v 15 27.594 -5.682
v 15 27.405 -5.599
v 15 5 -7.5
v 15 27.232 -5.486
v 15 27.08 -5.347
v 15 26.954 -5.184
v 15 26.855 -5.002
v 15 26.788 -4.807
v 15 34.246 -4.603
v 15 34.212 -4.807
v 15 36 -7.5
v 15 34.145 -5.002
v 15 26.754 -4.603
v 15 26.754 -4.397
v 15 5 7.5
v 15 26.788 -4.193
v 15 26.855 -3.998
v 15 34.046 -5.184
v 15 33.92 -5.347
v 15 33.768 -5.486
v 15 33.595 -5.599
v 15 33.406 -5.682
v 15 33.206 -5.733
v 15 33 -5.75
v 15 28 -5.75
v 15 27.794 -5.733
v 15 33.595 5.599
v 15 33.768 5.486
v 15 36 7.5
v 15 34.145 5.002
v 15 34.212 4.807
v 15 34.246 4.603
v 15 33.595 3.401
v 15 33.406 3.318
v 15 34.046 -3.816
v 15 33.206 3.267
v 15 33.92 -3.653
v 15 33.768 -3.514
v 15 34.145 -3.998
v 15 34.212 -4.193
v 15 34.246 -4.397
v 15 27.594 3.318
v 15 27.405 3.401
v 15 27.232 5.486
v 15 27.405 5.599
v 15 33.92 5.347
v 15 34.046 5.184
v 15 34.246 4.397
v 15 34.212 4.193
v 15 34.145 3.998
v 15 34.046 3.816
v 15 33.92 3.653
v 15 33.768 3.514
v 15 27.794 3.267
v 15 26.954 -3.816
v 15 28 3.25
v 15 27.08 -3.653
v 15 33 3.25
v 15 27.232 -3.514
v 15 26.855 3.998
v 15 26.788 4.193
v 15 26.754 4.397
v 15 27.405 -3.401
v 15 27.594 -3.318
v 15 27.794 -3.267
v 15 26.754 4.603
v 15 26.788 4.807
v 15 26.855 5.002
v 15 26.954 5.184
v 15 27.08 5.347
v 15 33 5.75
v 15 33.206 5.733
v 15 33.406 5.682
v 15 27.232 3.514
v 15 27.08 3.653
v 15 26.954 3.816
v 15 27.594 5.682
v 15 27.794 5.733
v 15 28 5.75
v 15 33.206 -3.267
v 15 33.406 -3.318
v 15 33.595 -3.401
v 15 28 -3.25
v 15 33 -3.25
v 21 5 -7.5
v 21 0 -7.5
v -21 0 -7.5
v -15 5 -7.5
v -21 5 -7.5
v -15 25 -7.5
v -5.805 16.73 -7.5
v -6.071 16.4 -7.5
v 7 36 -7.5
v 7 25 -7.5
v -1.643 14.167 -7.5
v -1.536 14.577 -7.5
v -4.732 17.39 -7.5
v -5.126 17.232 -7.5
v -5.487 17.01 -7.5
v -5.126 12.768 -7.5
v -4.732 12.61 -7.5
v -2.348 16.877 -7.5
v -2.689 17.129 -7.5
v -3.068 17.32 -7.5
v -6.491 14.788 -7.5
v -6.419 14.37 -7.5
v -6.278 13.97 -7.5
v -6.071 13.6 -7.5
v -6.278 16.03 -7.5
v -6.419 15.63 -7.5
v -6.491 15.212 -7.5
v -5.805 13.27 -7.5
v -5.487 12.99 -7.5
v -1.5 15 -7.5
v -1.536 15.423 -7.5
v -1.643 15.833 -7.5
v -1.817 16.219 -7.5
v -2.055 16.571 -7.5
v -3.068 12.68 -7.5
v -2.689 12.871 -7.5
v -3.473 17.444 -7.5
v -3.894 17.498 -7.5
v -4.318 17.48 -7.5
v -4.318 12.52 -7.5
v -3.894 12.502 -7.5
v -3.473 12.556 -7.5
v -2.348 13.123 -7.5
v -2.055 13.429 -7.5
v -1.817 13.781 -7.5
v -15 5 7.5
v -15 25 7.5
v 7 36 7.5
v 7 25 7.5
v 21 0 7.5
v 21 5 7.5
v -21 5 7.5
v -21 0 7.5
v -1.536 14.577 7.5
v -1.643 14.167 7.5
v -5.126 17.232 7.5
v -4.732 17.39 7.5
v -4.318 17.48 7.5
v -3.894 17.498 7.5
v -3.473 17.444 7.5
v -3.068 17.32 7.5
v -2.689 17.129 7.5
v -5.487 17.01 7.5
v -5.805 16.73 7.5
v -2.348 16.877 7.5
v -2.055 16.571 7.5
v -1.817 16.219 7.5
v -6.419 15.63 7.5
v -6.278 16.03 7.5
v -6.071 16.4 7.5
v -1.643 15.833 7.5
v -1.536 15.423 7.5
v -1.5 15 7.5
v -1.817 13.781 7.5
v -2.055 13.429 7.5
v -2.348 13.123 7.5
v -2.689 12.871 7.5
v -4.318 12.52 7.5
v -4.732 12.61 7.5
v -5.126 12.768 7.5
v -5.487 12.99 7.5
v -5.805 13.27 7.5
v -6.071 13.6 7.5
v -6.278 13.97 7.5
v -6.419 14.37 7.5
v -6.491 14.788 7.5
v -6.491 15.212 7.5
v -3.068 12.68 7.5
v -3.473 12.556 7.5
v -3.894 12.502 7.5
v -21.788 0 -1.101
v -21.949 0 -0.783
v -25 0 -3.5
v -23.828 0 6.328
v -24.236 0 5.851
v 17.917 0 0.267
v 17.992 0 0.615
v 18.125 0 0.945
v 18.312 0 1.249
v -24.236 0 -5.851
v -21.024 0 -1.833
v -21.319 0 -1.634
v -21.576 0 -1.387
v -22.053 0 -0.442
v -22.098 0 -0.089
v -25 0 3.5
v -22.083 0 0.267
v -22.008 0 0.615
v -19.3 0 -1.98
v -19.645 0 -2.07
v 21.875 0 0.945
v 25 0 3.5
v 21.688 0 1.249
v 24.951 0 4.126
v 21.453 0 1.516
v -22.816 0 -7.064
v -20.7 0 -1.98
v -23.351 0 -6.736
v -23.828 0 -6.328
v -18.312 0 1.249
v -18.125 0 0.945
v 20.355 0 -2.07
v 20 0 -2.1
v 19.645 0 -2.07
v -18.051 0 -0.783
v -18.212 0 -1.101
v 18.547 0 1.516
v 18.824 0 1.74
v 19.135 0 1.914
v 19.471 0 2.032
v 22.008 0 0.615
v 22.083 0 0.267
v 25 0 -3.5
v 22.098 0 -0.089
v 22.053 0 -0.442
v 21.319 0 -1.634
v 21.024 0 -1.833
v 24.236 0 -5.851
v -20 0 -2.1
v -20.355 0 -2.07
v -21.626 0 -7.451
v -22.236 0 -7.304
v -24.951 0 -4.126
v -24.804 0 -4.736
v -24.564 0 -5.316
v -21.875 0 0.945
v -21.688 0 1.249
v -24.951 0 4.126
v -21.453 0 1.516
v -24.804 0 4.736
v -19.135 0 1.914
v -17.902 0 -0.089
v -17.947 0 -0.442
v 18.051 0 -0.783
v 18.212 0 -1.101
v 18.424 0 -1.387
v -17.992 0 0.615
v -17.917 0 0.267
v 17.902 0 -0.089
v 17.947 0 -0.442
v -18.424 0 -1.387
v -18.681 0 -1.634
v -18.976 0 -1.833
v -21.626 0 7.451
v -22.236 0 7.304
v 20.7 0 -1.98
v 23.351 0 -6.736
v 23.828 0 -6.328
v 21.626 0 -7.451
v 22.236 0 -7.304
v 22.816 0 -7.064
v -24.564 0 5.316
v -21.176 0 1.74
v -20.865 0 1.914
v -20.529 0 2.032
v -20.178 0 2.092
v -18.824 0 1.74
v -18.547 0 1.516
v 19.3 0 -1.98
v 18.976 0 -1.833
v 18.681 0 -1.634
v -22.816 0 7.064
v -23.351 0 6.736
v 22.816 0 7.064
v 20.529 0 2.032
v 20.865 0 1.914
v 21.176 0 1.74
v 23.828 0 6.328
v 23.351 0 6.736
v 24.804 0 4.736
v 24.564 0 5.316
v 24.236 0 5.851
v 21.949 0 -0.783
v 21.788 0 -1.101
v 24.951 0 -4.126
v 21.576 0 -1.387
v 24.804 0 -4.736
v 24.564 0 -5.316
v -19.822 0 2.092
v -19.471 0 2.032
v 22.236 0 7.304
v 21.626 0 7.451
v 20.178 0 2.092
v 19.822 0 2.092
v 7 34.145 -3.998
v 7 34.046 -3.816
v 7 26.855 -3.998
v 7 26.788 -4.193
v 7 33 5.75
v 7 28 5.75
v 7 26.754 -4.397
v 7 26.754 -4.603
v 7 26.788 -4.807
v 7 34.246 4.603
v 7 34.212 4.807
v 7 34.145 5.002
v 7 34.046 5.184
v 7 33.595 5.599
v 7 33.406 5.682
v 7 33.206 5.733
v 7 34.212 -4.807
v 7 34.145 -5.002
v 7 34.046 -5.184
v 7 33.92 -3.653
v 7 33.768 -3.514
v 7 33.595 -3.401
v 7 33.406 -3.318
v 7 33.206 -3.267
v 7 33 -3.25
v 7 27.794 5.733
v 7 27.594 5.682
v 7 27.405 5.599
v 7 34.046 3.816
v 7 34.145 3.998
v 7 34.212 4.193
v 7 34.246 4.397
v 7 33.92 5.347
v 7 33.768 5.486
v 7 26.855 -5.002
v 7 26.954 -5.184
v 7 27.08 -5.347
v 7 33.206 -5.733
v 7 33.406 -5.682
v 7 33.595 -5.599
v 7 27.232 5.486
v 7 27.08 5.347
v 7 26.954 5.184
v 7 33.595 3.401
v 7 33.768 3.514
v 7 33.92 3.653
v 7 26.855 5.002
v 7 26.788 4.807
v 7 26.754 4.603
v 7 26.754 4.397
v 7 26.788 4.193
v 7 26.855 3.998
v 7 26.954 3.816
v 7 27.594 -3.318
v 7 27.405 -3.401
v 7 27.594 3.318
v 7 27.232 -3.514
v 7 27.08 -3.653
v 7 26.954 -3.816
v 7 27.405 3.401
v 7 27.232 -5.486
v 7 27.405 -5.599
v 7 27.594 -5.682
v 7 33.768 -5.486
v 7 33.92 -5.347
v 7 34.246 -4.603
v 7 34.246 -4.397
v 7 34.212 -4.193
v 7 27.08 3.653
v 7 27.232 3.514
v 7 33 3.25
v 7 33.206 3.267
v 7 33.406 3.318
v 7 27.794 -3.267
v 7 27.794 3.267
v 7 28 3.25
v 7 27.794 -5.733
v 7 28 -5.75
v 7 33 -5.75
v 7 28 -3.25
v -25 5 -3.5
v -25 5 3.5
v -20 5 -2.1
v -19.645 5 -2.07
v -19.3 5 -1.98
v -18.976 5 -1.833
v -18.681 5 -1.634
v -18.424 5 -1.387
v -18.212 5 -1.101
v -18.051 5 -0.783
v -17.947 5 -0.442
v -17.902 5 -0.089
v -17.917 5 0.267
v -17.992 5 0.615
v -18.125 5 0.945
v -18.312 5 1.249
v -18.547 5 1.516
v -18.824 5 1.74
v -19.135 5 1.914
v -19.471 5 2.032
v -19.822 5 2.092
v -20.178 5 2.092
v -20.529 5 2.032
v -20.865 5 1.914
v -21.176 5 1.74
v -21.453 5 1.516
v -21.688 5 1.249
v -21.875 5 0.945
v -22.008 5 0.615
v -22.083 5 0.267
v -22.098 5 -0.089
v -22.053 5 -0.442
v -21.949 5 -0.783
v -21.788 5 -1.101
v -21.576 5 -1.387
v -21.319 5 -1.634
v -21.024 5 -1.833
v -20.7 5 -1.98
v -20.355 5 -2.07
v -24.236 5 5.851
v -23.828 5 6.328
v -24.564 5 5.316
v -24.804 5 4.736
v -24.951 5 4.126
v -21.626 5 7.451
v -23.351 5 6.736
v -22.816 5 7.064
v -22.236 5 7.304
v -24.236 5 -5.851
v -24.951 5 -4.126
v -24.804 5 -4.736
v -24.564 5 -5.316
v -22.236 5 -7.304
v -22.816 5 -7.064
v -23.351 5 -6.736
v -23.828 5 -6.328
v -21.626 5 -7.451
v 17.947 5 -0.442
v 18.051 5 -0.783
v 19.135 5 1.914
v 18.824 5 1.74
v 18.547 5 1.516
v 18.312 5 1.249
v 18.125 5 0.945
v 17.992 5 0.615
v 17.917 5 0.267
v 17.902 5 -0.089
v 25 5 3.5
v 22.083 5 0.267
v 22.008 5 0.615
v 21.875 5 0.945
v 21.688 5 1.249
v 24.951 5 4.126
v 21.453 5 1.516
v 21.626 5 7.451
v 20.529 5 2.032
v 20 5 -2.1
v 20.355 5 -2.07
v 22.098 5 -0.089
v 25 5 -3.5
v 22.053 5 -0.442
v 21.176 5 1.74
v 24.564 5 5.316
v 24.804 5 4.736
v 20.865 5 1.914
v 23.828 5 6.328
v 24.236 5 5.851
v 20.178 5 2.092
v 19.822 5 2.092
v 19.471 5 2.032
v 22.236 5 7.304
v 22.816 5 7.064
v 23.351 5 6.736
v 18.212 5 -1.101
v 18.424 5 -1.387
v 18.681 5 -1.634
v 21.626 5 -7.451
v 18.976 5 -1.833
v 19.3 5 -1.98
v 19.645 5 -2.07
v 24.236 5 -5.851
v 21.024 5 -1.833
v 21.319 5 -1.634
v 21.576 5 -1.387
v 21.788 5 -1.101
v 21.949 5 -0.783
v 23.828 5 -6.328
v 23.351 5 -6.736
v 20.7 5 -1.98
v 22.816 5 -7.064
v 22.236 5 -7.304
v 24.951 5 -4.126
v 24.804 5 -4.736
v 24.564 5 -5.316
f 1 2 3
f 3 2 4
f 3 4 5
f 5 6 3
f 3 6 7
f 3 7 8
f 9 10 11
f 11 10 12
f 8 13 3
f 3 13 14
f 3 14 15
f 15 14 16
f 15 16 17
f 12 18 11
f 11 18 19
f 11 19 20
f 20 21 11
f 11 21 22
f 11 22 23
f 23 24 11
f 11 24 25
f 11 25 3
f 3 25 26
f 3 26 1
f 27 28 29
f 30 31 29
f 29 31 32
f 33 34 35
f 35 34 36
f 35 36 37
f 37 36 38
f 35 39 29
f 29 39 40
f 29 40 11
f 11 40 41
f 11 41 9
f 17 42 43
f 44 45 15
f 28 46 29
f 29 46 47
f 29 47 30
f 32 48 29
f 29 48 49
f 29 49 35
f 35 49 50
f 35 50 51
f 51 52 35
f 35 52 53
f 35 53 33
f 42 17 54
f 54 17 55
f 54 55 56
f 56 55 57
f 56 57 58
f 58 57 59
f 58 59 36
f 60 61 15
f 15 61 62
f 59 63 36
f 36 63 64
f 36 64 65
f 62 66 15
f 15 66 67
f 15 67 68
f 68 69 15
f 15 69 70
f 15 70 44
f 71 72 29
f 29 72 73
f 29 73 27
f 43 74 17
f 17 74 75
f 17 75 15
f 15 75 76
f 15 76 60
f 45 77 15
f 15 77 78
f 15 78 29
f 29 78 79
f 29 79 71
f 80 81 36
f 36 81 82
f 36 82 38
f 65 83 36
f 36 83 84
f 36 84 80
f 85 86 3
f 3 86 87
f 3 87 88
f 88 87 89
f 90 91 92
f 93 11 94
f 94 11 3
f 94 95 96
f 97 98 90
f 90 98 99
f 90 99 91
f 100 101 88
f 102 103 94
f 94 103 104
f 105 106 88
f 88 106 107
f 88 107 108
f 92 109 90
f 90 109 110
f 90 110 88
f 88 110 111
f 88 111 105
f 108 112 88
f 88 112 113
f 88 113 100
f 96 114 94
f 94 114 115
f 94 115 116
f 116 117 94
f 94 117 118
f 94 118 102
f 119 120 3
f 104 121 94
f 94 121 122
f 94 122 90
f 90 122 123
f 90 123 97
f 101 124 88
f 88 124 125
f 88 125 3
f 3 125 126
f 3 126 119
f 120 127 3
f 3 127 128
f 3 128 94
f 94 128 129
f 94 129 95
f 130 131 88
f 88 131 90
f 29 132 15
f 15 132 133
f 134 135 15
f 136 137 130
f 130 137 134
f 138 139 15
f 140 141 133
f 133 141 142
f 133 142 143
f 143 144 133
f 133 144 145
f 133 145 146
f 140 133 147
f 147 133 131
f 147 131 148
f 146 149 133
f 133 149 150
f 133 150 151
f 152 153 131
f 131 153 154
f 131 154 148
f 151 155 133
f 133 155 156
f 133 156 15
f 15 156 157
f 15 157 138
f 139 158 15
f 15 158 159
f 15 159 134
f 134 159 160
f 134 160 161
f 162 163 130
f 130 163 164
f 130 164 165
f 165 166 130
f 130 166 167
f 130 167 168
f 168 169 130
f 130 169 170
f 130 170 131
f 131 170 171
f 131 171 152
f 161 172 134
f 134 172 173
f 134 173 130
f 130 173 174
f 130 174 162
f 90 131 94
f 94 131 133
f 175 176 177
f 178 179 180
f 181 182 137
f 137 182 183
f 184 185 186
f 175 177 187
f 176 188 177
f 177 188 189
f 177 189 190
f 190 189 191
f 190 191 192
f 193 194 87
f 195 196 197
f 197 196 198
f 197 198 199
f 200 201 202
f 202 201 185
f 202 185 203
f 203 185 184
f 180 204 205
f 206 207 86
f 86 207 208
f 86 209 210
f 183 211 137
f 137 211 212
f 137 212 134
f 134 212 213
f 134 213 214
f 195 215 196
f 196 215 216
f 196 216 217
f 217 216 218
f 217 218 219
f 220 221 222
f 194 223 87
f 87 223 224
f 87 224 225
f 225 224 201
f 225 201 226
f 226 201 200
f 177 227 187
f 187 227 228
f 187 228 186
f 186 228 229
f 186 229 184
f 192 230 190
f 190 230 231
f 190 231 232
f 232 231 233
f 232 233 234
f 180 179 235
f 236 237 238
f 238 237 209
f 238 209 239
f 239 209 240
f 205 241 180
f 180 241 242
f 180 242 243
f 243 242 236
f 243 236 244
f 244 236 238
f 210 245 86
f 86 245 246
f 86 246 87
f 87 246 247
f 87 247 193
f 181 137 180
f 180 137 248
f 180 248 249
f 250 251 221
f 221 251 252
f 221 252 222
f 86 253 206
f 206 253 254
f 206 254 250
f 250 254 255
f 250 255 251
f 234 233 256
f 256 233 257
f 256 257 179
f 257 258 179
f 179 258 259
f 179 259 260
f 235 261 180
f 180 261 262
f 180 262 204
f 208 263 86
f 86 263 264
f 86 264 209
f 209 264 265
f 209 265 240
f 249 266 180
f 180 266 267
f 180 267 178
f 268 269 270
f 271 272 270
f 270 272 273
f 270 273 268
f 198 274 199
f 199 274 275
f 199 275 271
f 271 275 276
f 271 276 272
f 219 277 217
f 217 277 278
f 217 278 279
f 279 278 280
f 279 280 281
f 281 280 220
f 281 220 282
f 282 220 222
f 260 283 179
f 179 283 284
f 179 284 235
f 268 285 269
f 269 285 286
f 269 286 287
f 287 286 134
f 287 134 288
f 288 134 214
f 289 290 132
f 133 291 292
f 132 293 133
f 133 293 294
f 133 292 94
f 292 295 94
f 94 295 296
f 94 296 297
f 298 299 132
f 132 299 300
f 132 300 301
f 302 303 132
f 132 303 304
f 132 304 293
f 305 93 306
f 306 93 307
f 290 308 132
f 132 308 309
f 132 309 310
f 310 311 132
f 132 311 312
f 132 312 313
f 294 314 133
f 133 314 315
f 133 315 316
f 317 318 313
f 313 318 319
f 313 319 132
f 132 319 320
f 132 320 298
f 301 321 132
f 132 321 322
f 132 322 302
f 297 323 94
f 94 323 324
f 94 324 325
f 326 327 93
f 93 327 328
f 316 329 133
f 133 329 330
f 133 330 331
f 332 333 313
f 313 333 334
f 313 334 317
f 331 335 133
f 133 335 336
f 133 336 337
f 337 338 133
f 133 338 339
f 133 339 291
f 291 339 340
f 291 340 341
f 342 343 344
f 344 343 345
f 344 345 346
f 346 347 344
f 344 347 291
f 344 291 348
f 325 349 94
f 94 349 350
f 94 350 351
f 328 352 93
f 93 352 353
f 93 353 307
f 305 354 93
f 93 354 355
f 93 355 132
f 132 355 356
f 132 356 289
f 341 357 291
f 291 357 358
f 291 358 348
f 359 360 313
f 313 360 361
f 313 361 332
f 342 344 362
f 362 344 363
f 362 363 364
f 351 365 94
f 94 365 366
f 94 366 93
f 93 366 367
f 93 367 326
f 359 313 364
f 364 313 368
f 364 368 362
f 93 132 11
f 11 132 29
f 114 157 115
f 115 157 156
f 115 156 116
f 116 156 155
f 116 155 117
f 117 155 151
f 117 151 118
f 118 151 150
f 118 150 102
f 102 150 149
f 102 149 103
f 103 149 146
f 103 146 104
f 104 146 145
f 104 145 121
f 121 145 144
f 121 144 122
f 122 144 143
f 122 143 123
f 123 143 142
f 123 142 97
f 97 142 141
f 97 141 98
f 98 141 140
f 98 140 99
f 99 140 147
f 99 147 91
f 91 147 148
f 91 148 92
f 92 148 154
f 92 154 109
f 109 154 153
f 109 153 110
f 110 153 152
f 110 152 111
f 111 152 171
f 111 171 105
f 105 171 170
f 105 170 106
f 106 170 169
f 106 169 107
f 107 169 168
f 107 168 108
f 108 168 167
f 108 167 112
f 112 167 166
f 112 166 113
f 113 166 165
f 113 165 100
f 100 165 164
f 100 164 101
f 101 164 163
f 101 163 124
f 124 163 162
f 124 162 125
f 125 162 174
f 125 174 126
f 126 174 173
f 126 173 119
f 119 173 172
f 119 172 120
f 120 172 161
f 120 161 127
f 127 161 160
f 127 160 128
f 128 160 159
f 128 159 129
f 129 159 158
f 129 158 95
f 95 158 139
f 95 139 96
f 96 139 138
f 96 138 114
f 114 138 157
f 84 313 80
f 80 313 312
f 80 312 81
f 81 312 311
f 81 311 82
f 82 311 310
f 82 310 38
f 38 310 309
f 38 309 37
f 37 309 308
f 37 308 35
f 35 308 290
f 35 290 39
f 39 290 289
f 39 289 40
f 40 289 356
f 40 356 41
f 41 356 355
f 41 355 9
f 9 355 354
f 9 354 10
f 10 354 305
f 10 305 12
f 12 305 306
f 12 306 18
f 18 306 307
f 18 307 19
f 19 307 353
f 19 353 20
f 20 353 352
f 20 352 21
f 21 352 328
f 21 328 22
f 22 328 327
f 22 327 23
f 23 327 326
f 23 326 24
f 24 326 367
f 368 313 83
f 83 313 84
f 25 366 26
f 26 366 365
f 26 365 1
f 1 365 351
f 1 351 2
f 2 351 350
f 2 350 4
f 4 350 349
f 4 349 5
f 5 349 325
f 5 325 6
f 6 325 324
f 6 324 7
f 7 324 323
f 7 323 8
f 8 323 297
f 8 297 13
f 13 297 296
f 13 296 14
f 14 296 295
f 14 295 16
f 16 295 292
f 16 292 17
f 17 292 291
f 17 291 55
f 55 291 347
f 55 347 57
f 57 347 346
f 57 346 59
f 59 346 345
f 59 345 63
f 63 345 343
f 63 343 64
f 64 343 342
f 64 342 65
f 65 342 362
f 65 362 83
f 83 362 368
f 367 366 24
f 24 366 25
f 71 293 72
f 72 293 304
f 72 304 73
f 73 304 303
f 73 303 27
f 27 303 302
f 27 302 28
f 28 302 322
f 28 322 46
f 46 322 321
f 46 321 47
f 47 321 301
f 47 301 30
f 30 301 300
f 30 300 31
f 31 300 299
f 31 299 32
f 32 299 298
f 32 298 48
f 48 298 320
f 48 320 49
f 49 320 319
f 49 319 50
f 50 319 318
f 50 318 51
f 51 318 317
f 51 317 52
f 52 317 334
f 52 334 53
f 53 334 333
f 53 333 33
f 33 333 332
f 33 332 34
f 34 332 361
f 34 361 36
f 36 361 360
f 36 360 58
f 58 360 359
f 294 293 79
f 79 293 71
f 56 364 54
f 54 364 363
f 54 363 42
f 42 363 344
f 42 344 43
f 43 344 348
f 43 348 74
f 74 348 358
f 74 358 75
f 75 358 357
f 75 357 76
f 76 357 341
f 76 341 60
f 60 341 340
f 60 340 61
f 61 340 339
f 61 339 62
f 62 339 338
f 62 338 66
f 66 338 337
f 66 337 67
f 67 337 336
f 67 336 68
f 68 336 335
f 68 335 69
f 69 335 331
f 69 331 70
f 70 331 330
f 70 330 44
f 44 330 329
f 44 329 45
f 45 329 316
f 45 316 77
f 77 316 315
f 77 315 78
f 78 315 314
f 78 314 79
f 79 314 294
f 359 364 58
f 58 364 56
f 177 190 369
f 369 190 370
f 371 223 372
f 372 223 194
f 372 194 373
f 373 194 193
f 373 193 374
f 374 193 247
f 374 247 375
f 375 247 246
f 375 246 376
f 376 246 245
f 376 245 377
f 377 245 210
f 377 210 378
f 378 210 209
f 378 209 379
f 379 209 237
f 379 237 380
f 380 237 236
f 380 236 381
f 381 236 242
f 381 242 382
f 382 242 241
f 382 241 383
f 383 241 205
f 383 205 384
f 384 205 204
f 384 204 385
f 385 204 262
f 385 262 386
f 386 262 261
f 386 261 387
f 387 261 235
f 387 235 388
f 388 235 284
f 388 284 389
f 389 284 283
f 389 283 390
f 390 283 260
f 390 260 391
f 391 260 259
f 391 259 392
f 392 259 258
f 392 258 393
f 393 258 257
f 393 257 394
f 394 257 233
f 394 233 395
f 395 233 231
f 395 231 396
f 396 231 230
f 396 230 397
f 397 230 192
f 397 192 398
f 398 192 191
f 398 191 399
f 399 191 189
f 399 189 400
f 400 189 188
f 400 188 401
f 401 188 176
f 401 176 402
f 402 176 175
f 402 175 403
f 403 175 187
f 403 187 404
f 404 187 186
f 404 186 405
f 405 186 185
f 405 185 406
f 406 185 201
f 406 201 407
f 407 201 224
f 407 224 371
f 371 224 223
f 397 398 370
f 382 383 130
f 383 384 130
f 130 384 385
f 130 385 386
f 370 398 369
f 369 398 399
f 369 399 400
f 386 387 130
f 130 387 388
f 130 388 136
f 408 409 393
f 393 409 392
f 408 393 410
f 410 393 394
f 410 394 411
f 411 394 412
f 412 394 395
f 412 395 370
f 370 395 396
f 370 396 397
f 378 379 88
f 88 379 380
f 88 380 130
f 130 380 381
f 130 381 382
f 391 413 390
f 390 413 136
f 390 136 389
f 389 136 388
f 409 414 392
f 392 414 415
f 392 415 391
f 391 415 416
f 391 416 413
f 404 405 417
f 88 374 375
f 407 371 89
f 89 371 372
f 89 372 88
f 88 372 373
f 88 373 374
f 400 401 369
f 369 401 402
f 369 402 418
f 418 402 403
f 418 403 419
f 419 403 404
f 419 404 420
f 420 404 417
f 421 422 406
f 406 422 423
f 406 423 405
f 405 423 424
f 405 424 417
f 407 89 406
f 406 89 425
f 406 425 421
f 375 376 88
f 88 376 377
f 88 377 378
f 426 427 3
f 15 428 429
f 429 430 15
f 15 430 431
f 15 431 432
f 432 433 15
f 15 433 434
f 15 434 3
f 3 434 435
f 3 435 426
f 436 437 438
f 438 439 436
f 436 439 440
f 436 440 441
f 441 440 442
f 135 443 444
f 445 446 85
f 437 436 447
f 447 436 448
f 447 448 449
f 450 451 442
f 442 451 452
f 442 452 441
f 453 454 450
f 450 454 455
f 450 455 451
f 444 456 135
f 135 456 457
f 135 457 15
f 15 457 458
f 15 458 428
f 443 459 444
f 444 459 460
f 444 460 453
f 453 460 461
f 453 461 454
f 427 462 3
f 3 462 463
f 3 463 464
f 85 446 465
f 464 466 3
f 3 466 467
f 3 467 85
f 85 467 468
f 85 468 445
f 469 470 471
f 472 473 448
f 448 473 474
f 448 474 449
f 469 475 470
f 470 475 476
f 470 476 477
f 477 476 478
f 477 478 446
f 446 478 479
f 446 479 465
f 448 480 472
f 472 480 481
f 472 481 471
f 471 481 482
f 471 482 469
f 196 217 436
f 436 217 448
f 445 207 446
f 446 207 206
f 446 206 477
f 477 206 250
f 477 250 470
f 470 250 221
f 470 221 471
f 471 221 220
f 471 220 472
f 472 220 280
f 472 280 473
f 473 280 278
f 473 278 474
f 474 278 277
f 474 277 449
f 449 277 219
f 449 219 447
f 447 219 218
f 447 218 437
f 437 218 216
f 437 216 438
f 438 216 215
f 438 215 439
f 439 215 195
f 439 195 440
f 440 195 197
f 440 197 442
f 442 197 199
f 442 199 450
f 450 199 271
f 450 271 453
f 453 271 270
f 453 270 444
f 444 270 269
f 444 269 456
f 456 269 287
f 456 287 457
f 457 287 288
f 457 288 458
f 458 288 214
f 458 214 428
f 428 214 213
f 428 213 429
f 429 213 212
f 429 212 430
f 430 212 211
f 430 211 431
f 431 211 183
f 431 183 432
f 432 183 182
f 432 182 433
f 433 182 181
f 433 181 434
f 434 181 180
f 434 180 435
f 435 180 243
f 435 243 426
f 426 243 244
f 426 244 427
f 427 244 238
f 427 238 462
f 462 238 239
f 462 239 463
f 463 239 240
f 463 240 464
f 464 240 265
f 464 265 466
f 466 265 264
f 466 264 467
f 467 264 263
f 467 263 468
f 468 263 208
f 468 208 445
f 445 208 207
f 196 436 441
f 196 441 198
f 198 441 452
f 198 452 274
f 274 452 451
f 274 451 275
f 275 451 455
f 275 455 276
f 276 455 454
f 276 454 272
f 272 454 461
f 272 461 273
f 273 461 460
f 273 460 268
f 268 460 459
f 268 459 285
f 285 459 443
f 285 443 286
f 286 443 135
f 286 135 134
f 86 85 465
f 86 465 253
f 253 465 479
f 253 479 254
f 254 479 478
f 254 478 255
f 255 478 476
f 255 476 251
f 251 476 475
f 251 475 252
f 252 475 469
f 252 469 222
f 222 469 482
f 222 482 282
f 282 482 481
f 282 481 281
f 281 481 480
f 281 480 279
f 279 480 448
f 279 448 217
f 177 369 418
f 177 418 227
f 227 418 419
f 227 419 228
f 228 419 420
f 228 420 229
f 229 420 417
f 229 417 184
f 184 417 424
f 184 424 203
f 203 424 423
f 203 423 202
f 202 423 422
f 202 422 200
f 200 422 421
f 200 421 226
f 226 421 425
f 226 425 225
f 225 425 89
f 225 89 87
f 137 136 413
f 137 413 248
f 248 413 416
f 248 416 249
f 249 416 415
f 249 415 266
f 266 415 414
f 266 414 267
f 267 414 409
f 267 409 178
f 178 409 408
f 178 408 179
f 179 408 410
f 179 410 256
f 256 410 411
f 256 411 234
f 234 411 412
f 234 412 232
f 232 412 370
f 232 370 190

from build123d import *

# Parameters (mm, degrees)
ESQUISSE2_W             = 30
ESQUISSE2_H             = 15
BOSS_EXTRU_1_DEPTH      = 25
ESQUISSE3_W             = 8
ESQUISSE3_H             = 15
BOSS_EXTRU_2_DEPTH      = 11
ENL_V_MAT_EXTRU_1_REACH = 17
ESQUISSE4_R             = 2.5
ENL_V_MAT_EXTRU_2_REACH = 10
ESQUISSE7_W             = 50
ESQUISSE7_H             = 15
ESQUISSE7_R             = 2.1
BOSS_EXTRU_4_DEPTH      = 5
CONG_2_R                = 4


with BuildPart() as part:
    # Esquisse2 → Boss.-Extru.1 (new body)
    with BuildSketch(Plane(origin=(0, 0, 0), x_dir=(1, 0, 0), z_dir=(0, 1, 0))):
        Rectangle(ESQUISSE2_W, ESQUISSE2_H)
    extrude(amount=BOSS_EXTRU_1_DEPTH)

    # Esquisse3 → Boss.-Extru.2 (add)
    with BuildSketch(Plane(origin=(0, 25, 0), x_dir=(1, 0, 0), z_dir=(0, 1, 0))):
        with Locations((11, 0)):
            Rectangle(ESQUISSE3_W, ESQUISSE3_H)
    extrude(amount=BOSS_EXTRU_2_DEPTH)

    # Esquisse4 → Enlèv. mat.-Extru.1 (cut, up to next)
    with BuildSketch(Plane.XY.offset(7.5), mode=Mode.PRIVATE) as enl_v_mat_extru_1_sk1:
        with Locations((-4, 15)):
            Circle(ESQUISSE4_R)
    enl_v_mat_extru_1_tool1 = extrude(enl_v_mat_extru_1_sk1.sketch, amount=-ENL_V_MAT_EXTRU_1_REACH, mode=Mode.PRIVATE) & part.part
    add(enl_v_mat_extru_1_tool1.solids().sort_by_distance((-4, 15, 7.5))[0], mode=Mode.SUBTRACT)

    # Esquisse5 → Enlèv. mat.-Extru.2 (cut, up to next)
    with BuildSketch(Plane.ZY.offset(-7), mode=Mode.PRIVATE) as enl_v_mat_extru_2_sk1:
        with BuildLine():
            Line((5.75, 33), (5.75, 28))
            ThreePointArc((5.75, 28), (4.5, 26.75), (3.25, 28))
            Line((3.25, 28), (3.25, 33))
            ThreePointArc((3.25, 33), (4.5, 34.25), (5.75, 33))
        make_face()
    enl_v_mat_extru_2_tool1 = extrude(enl_v_mat_extru_2_sk1.sketch, amount=-ENL_V_MAT_EXTRU_2_REACH, mode=Mode.PRIVATE) & part.part
    add(enl_v_mat_extru_2_tool1.solids().sort_by_distance((7, 30.5, 4.5))[0], mode=Mode.SUBTRACT)
    # Esquisse5 → Enlèv. mat.-Extru.2 (cut, up to next)
    with BuildSketch(Plane.ZY.offset(-7), mode=Mode.PRIVATE) as enl_v_mat_extru_2_sk2:
        with BuildLine():
            Line((-3.25, 33), (-3.25, 28))
            ThreePointArc((-3.25, 28), (-4.5, 26.75), (-5.75, 28))
            Line((-5.75, 28), (-5.75, 33))
            ThreePointArc((-5.75, 33), (-4.5, 34.25), (-3.25, 33))
        make_face()
    enl_v_mat_extru_2_tool2 = extrude(enl_v_mat_extru_2_sk2.sketch, amount=-ENL_V_MAT_EXTRU_2_REACH, mode=Mode.PRIVATE) & part.part
    add(enl_v_mat_extru_2_tool2.solids().sort_by_distance((7, 30.5, -4.5))[0], mode=Mode.SUBTRACT)

    # Esquisse7 → Boss.-Extru.4 (add)
    with BuildSketch(Plane.XZ):
        Rectangle(ESQUISSE7_W, ESQUISSE7_H)
        with Locations((20, 0)):
            Circle(ESQUISSE7_R, mode=Mode.SUBTRACT)
        with Locations((-20, 0)):
            Circle(ESQUISSE7_R, mode=Mode.SUBTRACT)
    extrude(amount=-BOSS_EXTRU_4_DEPTH)

    # Congé2
    cong_2_edges = [part.edges().sort_by_distance(p)[0] for p in [
        (25, 2.5, -7.5),
        (-25, 2.5, 7.5),
        (25, 2.5, 7.5),
        (-25, 2.5, -7.5),
    ]]
    fillet(cong_2_edges, radius=CONG_2_R)


solid = part.part
